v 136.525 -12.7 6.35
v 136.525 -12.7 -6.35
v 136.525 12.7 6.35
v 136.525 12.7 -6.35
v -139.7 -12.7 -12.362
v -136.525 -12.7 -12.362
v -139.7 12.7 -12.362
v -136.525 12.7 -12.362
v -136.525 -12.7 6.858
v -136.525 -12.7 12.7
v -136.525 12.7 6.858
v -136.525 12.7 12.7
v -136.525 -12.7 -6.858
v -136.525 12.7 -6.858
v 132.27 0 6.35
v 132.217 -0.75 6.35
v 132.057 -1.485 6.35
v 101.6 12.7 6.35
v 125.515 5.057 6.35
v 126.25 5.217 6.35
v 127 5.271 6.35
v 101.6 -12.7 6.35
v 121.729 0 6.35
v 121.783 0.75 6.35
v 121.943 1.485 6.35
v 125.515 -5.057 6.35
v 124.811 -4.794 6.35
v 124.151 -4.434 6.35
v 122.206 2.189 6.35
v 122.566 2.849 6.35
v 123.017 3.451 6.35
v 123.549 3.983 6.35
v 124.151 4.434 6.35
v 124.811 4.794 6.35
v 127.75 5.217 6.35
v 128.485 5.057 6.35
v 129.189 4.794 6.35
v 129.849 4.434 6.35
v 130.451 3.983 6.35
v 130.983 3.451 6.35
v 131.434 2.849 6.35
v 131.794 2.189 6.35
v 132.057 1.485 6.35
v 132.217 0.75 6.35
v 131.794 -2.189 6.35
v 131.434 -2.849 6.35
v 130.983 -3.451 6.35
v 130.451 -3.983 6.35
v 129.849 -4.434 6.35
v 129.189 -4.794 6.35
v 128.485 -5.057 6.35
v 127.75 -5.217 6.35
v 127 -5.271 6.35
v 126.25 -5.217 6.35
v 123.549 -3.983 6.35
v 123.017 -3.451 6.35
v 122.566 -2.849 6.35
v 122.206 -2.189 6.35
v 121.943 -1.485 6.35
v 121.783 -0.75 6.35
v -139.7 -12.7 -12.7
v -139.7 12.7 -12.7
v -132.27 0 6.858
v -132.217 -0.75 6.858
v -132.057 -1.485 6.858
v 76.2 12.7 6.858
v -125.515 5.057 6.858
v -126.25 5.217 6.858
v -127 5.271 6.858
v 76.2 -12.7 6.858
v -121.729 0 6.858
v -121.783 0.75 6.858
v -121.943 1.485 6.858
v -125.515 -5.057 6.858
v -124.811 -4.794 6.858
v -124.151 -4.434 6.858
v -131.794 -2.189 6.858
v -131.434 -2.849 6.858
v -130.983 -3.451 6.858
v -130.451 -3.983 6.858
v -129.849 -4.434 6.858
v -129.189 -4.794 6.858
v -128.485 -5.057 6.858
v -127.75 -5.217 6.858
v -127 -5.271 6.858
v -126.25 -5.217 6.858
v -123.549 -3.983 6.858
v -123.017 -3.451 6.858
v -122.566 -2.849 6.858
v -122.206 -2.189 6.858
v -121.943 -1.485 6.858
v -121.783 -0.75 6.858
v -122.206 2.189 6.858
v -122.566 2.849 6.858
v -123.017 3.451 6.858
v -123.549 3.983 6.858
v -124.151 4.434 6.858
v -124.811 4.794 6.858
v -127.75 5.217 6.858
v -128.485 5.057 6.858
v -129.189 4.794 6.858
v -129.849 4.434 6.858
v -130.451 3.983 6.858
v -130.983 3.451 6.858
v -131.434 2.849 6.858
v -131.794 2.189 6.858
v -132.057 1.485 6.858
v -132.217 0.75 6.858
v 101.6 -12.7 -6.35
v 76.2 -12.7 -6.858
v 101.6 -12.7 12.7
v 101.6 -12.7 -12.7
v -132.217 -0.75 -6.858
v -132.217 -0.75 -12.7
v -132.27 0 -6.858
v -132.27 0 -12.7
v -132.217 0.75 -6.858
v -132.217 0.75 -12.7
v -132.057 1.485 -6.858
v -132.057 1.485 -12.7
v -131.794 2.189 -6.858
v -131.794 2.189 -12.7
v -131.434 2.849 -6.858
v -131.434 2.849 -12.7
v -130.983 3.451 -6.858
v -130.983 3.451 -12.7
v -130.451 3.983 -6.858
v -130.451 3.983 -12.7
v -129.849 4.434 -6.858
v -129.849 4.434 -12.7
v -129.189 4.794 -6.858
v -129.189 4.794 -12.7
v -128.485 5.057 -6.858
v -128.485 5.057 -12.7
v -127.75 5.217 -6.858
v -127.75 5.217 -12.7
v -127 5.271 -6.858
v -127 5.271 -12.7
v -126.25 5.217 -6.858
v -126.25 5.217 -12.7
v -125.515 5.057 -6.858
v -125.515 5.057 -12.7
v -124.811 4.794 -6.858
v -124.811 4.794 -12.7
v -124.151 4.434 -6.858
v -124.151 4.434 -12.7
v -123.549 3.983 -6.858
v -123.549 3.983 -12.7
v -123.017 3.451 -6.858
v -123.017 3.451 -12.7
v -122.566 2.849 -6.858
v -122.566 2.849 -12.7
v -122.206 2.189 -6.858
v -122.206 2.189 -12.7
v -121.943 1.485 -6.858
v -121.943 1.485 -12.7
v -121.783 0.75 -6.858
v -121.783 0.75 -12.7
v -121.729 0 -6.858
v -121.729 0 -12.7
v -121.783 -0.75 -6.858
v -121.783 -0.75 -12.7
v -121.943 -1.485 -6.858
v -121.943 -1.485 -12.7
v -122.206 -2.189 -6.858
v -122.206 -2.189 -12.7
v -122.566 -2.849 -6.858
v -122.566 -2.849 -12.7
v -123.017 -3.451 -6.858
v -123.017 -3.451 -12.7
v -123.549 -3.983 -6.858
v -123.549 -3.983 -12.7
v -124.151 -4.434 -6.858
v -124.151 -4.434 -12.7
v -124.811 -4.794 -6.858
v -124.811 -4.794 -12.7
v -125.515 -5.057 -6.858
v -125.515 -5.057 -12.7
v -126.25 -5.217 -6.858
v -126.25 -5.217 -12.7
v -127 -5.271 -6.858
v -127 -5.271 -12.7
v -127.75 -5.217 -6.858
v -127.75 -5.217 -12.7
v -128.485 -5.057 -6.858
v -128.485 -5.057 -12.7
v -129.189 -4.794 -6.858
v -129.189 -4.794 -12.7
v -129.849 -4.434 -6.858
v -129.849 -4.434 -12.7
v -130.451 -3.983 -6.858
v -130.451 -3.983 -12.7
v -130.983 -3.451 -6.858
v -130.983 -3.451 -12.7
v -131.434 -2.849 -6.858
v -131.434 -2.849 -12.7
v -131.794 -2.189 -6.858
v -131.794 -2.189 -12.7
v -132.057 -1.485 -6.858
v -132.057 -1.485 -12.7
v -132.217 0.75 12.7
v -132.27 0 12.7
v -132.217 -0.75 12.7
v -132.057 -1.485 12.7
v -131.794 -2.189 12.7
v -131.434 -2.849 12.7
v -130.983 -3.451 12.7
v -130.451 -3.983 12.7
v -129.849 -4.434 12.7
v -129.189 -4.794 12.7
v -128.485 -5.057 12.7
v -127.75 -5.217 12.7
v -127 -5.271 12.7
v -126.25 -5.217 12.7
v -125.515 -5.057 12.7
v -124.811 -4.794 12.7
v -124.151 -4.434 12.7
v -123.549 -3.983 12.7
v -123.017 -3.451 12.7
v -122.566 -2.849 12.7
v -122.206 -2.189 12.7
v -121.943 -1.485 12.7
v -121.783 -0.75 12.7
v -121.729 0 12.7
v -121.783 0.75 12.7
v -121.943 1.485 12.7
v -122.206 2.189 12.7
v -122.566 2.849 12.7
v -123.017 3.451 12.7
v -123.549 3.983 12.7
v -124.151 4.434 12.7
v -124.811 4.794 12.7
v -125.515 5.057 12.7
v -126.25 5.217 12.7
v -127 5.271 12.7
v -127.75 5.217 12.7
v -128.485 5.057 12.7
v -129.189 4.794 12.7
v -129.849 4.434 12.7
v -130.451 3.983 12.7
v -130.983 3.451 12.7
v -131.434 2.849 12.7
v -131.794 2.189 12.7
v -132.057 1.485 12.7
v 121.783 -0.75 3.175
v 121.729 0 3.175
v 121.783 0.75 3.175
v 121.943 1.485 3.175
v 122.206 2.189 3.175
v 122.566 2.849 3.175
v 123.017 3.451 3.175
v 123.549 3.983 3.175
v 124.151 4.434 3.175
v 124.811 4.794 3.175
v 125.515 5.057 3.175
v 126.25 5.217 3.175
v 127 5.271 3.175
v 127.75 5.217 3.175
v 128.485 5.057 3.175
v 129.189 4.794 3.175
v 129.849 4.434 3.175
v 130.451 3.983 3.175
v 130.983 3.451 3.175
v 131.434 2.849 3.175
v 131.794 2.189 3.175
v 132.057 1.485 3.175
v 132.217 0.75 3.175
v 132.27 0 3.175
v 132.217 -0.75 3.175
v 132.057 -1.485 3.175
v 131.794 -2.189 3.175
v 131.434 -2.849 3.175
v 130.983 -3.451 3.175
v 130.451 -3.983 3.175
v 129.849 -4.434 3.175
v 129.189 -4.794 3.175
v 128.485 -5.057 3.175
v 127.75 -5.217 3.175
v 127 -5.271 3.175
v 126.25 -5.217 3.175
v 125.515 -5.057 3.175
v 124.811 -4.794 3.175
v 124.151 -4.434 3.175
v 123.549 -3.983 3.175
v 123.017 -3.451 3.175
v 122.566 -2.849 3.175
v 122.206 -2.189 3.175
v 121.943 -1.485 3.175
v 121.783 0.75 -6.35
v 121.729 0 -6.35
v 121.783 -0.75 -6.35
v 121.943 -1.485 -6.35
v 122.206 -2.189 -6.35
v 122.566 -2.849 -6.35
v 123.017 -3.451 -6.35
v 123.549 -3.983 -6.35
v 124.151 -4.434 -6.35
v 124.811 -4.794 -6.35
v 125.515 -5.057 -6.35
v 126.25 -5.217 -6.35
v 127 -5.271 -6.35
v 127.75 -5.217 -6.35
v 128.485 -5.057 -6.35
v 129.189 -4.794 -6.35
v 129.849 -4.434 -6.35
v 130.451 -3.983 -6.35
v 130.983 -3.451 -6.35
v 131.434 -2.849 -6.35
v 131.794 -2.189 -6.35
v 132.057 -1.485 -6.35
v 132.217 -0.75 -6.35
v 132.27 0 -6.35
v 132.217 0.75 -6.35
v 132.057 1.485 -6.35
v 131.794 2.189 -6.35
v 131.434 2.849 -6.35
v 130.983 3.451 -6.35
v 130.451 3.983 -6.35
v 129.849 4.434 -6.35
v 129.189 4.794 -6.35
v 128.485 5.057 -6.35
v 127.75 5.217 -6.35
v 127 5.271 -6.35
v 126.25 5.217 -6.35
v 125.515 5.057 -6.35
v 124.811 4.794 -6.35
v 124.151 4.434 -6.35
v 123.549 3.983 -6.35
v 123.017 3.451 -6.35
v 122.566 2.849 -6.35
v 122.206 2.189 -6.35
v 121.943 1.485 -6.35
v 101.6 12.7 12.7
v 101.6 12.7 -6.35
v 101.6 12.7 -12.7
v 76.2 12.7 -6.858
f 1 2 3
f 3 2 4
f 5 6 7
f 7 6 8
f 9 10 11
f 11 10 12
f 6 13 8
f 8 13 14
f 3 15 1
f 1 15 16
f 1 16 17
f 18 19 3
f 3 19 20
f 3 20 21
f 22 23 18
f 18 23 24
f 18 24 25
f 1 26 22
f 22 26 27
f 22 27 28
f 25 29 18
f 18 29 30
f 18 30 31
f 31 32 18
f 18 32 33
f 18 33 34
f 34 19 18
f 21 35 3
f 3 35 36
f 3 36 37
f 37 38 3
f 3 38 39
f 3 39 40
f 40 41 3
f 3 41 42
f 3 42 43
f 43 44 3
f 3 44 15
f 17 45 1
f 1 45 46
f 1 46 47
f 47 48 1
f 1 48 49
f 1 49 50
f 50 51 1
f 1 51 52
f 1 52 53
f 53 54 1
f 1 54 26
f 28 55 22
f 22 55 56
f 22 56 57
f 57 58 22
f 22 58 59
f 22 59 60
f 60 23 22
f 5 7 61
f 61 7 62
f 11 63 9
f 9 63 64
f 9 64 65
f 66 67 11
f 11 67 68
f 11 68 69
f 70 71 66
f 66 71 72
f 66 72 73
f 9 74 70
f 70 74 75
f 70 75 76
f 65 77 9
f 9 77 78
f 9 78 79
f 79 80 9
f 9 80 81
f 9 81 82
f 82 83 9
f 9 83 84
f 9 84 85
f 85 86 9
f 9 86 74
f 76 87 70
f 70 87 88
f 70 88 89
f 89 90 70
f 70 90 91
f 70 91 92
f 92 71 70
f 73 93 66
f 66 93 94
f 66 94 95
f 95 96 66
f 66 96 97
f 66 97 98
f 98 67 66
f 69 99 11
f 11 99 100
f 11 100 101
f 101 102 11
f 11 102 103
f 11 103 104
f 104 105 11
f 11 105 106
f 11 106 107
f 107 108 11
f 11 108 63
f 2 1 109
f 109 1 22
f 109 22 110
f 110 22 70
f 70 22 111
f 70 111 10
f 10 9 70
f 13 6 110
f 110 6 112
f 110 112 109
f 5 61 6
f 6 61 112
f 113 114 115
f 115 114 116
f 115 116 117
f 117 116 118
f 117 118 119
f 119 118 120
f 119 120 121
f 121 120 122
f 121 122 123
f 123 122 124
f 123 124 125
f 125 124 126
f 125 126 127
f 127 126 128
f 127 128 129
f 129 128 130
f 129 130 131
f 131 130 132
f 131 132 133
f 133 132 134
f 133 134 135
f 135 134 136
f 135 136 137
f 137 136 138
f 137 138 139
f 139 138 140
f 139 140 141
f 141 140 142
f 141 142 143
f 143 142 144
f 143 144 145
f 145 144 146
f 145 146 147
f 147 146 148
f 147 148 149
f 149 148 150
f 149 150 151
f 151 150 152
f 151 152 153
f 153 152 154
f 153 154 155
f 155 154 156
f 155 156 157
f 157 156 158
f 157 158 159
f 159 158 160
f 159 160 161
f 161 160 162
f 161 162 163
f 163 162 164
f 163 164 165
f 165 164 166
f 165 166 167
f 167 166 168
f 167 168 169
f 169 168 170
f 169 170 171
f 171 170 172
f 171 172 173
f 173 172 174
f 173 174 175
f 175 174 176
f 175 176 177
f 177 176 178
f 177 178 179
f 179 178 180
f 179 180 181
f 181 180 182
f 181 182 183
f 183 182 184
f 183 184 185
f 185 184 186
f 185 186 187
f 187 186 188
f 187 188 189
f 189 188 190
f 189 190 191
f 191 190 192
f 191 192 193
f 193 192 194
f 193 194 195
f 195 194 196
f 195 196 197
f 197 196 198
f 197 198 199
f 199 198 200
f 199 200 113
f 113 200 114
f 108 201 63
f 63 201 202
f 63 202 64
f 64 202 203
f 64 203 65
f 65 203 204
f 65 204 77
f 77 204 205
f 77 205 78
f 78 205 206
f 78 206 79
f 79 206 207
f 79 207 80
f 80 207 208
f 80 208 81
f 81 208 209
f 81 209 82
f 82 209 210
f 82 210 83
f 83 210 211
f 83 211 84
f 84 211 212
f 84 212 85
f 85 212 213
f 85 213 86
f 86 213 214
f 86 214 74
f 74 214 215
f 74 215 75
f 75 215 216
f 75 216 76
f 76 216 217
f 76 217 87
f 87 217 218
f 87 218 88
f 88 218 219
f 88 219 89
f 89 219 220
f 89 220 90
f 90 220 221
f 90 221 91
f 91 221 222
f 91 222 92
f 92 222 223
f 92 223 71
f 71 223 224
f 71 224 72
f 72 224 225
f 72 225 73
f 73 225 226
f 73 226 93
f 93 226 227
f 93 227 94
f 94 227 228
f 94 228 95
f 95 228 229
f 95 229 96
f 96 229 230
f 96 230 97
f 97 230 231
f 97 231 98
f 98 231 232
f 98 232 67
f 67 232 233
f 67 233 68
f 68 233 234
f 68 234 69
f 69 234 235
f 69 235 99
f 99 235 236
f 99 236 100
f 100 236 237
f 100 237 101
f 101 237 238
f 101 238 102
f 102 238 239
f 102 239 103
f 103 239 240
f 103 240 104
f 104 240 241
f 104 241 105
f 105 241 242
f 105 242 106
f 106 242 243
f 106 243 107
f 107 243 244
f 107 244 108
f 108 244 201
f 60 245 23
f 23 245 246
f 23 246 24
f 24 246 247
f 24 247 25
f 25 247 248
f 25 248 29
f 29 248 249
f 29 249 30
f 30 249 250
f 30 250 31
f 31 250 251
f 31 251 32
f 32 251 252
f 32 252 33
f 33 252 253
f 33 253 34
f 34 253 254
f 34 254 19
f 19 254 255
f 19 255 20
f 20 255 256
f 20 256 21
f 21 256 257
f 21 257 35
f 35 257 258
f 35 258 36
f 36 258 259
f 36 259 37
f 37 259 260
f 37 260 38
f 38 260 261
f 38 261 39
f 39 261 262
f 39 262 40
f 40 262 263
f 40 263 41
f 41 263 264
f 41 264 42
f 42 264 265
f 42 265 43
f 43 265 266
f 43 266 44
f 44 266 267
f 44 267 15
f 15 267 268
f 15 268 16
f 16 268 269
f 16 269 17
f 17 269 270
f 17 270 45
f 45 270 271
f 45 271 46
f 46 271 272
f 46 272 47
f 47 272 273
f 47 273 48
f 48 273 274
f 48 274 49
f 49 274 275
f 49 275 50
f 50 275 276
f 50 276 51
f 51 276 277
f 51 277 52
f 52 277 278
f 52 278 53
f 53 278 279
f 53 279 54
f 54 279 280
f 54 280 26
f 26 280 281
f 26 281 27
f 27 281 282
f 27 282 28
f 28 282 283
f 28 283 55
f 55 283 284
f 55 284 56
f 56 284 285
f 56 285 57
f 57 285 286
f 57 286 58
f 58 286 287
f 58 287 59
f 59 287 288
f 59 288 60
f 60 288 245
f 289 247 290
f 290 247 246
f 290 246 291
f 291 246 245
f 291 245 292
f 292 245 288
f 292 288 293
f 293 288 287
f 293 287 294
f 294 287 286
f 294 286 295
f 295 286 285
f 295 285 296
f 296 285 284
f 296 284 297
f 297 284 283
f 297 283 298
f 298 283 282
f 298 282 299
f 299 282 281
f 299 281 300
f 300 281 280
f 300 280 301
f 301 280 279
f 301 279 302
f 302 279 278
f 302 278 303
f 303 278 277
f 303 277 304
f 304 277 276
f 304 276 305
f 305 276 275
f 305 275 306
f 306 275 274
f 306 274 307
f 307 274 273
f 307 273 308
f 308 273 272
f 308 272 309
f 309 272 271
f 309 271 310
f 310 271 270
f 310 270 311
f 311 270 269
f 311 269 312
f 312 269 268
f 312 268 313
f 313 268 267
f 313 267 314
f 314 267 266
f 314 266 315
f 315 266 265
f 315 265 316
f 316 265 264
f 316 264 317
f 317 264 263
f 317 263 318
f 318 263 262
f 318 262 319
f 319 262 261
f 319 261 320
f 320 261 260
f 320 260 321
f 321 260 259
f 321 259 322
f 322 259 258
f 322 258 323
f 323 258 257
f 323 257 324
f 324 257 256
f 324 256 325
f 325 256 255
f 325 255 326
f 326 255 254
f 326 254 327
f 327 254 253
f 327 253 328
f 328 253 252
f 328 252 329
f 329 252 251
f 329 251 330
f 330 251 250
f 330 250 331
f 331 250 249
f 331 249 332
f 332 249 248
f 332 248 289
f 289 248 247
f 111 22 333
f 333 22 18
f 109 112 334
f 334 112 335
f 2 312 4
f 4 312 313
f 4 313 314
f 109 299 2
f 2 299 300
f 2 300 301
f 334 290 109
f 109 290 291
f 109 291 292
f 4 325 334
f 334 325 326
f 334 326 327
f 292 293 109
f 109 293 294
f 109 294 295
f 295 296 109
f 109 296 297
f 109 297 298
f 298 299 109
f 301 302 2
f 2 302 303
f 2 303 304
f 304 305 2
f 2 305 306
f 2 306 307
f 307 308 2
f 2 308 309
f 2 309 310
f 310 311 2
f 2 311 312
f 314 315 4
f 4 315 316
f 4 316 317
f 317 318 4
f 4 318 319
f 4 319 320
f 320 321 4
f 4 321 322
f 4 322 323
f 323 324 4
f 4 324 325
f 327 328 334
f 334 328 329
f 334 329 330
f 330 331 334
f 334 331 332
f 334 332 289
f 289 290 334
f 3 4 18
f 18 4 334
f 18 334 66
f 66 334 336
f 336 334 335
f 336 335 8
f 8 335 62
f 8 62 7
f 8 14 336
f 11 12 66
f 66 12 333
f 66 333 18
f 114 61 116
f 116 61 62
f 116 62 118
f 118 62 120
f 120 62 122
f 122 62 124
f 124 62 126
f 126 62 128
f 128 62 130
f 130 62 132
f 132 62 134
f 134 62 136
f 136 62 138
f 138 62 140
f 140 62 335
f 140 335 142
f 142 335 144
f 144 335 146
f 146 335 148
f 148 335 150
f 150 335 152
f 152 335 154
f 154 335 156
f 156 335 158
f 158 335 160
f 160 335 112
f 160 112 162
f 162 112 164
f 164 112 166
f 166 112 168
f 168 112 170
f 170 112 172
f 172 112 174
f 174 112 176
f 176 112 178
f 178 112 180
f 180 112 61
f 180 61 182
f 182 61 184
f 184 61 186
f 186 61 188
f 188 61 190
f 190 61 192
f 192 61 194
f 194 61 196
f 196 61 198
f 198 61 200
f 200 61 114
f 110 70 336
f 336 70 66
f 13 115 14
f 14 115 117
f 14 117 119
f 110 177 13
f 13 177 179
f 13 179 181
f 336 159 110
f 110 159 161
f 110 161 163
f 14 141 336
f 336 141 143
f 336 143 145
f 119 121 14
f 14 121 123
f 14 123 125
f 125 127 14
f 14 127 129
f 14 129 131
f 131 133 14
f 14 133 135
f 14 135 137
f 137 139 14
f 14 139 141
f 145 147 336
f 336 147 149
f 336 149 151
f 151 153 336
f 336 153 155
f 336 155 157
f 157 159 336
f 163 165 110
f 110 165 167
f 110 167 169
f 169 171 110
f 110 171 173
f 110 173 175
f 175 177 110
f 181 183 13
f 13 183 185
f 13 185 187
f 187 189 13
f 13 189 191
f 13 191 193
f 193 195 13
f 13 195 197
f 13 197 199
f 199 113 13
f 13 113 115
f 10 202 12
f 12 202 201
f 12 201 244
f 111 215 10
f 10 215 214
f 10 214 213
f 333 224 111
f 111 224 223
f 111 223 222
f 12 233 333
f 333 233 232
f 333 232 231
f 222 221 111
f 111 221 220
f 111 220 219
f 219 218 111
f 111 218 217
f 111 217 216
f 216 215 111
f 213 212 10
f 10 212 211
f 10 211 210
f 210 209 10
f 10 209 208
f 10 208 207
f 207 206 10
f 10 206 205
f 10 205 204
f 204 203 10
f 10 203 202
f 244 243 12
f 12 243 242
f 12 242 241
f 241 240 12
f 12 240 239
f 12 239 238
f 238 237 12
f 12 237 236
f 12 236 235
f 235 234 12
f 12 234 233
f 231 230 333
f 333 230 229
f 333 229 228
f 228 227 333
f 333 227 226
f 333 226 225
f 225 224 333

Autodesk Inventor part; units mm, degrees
ref_plane "YZ Plane" through (0, 0, 0) normal (1, 0, 0) x (0, 1, 0)
ref_plane "XZ Plane" through (0, 0, 0) normal (0, 1, 0) x (-1, 0, 0)
sketch "Sketch1" plane through (0, 0, 0) normal (0, 1, 0) x (-1, 0, 0)
  line L0 (139.7, 12.7) -> (-139.7, 12.7)
  line L1 (-139.7, 12.7) -> (-139.7, -12.7)
  line L2 (-139.7, -12.7) -> (139.7, -12.7)
  line L3 (139.7, -12.7) -> (139.7, 12.7)
  line L4 (139.7, 12.7) -> (-139.7, -12.7) construction
  line L5 (-139.7, 12.7) -> (139.7, -12.7) construction
  point P0 (0, 0)
  dimension "d0" = 279.4
  dimension "d1" = 25.4
extrude "Extrusion1" add sketch "Sketch1" along normal mid plane 25.4
sketch "Sketch3" plane through (0, 12.7, 0) normal (0, 1, 0) x (1, 0, 0)
  line L0 (-139.7, -6.858) -> (76.2, -6.858)
  line L1 (76.2, -6.858) -> (76.2, 6.858)
  line L2 (76.2, 6.858) -> (-139.7, 6.858)
  line L3 (-139.7, 6.858) -> (-139.7, -6.858)
  line L4 (-139.7, -6.858) -> (76.2, 6.858) construction
  line L5 (76.2, -6.858) -> (-139.7, 6.858) construction
  line L6 (-139.7, 12.7) -> (-139.7, -12.7) projected
  point P0 (0, 0)
  point P1 (-31.75, 0)
  dimension "d7" = 0
  dimension "d8" = 13.716
  dimension "d9" = 215.9
extrude "Extrusion2" cut sketch "Sketch3" against normal through all
sketch "Sketch4" plane through (0, 12.7, 0) normal (0, 1, 0) x (1, 0, 0)
  line L0 (139.7, 12.7) -> (-139.7, 12.7) projected
  line L1 (139.7, 12.7) -> (101.6, 12.7)
  line L2 (101.6, 12.7) -> (101.6, 6.35)
  line L3 (101.6, 6.35) -> (139.7, 6.35)
  line L4 (139.7, 6.35) -> (139.7, 12.7)
  line L5 (139.7, 0) -> (76.2, 0) construction
  line L6 (76.2, 6.858) -> (76.2, -6.858) construction
  point P0 (0, 0)
  point P1 (101.6, 12.7)
  dimension "d12" = 38.1
  dimension "d13" = 6.35
extrude "Extrusion3" cut sketch "Sketch4" against normal through all
mirror "Mirror1" about plane through (0, 0, 0) normal (0, 0, 1) of "Extrusion3"
sketch "Sketch5" plane through (-139.7, -12.7, 12.7) normal (0, 0, 1) x (1, 0, 0)
  circle A0 centre (12.7, 12.7) radius 5.2705
  circle A1 centre (266.7, 12.7) radius 5.2705
  line L0 (0, 0) -> (0, 25.4) projected
  line L1 (279.4, 25.4) -> (279.4, 0) projected
  point P0 (139.7, 12.7)
  dimension "d16" = 10.541
  dimension "d17" = 12.7
  dimension "d18" = 12.7
extrude "Extrusion4" cut sketch "Sketch5" against normal through all
sketch "Sketch6" plane through (0, 12.7, 0) normal (0, 1, 0) x (1, 0, 0)
  line L0 (-139.7, -12.7) -> (101.6, -12.7) projected
  line L1 (-139.7, 12.3621) -> (-136.525, 12.3621)
  line L2 (-136.525, 12.3621) -> (-136.525, -12.7)
  line L3 (-136.525, -12.7) -> (-139.7, -12.7)
  line L4 (-139.7, -12.7) -> (-139.7, 12.3621)
  line L5 (139.7, 6.35) -> (101.6, 6.35) projected
  line L6 (101.6, -6.35) -> (139.7, -6.35) projected
  line L7 (139.7, 6.35) -> (136.525, 6.35)
  line L8 (136.525, 6.35) -> (136.525, -6.35)
  line L9 (136.525, -6.35) -> (139.7, -6.35)
  line L10 (139.7, -6.35) -> (139.7, 6.35)
  point P0 (0, 0)
  dimension "d21" = 3.175
  dimension "d22" = 3.175
extrude "Extrusion5" cut sketch "Sketch6" against normal through all
properties part number "connectingRodV03-7-in" material "PET Plastic"
